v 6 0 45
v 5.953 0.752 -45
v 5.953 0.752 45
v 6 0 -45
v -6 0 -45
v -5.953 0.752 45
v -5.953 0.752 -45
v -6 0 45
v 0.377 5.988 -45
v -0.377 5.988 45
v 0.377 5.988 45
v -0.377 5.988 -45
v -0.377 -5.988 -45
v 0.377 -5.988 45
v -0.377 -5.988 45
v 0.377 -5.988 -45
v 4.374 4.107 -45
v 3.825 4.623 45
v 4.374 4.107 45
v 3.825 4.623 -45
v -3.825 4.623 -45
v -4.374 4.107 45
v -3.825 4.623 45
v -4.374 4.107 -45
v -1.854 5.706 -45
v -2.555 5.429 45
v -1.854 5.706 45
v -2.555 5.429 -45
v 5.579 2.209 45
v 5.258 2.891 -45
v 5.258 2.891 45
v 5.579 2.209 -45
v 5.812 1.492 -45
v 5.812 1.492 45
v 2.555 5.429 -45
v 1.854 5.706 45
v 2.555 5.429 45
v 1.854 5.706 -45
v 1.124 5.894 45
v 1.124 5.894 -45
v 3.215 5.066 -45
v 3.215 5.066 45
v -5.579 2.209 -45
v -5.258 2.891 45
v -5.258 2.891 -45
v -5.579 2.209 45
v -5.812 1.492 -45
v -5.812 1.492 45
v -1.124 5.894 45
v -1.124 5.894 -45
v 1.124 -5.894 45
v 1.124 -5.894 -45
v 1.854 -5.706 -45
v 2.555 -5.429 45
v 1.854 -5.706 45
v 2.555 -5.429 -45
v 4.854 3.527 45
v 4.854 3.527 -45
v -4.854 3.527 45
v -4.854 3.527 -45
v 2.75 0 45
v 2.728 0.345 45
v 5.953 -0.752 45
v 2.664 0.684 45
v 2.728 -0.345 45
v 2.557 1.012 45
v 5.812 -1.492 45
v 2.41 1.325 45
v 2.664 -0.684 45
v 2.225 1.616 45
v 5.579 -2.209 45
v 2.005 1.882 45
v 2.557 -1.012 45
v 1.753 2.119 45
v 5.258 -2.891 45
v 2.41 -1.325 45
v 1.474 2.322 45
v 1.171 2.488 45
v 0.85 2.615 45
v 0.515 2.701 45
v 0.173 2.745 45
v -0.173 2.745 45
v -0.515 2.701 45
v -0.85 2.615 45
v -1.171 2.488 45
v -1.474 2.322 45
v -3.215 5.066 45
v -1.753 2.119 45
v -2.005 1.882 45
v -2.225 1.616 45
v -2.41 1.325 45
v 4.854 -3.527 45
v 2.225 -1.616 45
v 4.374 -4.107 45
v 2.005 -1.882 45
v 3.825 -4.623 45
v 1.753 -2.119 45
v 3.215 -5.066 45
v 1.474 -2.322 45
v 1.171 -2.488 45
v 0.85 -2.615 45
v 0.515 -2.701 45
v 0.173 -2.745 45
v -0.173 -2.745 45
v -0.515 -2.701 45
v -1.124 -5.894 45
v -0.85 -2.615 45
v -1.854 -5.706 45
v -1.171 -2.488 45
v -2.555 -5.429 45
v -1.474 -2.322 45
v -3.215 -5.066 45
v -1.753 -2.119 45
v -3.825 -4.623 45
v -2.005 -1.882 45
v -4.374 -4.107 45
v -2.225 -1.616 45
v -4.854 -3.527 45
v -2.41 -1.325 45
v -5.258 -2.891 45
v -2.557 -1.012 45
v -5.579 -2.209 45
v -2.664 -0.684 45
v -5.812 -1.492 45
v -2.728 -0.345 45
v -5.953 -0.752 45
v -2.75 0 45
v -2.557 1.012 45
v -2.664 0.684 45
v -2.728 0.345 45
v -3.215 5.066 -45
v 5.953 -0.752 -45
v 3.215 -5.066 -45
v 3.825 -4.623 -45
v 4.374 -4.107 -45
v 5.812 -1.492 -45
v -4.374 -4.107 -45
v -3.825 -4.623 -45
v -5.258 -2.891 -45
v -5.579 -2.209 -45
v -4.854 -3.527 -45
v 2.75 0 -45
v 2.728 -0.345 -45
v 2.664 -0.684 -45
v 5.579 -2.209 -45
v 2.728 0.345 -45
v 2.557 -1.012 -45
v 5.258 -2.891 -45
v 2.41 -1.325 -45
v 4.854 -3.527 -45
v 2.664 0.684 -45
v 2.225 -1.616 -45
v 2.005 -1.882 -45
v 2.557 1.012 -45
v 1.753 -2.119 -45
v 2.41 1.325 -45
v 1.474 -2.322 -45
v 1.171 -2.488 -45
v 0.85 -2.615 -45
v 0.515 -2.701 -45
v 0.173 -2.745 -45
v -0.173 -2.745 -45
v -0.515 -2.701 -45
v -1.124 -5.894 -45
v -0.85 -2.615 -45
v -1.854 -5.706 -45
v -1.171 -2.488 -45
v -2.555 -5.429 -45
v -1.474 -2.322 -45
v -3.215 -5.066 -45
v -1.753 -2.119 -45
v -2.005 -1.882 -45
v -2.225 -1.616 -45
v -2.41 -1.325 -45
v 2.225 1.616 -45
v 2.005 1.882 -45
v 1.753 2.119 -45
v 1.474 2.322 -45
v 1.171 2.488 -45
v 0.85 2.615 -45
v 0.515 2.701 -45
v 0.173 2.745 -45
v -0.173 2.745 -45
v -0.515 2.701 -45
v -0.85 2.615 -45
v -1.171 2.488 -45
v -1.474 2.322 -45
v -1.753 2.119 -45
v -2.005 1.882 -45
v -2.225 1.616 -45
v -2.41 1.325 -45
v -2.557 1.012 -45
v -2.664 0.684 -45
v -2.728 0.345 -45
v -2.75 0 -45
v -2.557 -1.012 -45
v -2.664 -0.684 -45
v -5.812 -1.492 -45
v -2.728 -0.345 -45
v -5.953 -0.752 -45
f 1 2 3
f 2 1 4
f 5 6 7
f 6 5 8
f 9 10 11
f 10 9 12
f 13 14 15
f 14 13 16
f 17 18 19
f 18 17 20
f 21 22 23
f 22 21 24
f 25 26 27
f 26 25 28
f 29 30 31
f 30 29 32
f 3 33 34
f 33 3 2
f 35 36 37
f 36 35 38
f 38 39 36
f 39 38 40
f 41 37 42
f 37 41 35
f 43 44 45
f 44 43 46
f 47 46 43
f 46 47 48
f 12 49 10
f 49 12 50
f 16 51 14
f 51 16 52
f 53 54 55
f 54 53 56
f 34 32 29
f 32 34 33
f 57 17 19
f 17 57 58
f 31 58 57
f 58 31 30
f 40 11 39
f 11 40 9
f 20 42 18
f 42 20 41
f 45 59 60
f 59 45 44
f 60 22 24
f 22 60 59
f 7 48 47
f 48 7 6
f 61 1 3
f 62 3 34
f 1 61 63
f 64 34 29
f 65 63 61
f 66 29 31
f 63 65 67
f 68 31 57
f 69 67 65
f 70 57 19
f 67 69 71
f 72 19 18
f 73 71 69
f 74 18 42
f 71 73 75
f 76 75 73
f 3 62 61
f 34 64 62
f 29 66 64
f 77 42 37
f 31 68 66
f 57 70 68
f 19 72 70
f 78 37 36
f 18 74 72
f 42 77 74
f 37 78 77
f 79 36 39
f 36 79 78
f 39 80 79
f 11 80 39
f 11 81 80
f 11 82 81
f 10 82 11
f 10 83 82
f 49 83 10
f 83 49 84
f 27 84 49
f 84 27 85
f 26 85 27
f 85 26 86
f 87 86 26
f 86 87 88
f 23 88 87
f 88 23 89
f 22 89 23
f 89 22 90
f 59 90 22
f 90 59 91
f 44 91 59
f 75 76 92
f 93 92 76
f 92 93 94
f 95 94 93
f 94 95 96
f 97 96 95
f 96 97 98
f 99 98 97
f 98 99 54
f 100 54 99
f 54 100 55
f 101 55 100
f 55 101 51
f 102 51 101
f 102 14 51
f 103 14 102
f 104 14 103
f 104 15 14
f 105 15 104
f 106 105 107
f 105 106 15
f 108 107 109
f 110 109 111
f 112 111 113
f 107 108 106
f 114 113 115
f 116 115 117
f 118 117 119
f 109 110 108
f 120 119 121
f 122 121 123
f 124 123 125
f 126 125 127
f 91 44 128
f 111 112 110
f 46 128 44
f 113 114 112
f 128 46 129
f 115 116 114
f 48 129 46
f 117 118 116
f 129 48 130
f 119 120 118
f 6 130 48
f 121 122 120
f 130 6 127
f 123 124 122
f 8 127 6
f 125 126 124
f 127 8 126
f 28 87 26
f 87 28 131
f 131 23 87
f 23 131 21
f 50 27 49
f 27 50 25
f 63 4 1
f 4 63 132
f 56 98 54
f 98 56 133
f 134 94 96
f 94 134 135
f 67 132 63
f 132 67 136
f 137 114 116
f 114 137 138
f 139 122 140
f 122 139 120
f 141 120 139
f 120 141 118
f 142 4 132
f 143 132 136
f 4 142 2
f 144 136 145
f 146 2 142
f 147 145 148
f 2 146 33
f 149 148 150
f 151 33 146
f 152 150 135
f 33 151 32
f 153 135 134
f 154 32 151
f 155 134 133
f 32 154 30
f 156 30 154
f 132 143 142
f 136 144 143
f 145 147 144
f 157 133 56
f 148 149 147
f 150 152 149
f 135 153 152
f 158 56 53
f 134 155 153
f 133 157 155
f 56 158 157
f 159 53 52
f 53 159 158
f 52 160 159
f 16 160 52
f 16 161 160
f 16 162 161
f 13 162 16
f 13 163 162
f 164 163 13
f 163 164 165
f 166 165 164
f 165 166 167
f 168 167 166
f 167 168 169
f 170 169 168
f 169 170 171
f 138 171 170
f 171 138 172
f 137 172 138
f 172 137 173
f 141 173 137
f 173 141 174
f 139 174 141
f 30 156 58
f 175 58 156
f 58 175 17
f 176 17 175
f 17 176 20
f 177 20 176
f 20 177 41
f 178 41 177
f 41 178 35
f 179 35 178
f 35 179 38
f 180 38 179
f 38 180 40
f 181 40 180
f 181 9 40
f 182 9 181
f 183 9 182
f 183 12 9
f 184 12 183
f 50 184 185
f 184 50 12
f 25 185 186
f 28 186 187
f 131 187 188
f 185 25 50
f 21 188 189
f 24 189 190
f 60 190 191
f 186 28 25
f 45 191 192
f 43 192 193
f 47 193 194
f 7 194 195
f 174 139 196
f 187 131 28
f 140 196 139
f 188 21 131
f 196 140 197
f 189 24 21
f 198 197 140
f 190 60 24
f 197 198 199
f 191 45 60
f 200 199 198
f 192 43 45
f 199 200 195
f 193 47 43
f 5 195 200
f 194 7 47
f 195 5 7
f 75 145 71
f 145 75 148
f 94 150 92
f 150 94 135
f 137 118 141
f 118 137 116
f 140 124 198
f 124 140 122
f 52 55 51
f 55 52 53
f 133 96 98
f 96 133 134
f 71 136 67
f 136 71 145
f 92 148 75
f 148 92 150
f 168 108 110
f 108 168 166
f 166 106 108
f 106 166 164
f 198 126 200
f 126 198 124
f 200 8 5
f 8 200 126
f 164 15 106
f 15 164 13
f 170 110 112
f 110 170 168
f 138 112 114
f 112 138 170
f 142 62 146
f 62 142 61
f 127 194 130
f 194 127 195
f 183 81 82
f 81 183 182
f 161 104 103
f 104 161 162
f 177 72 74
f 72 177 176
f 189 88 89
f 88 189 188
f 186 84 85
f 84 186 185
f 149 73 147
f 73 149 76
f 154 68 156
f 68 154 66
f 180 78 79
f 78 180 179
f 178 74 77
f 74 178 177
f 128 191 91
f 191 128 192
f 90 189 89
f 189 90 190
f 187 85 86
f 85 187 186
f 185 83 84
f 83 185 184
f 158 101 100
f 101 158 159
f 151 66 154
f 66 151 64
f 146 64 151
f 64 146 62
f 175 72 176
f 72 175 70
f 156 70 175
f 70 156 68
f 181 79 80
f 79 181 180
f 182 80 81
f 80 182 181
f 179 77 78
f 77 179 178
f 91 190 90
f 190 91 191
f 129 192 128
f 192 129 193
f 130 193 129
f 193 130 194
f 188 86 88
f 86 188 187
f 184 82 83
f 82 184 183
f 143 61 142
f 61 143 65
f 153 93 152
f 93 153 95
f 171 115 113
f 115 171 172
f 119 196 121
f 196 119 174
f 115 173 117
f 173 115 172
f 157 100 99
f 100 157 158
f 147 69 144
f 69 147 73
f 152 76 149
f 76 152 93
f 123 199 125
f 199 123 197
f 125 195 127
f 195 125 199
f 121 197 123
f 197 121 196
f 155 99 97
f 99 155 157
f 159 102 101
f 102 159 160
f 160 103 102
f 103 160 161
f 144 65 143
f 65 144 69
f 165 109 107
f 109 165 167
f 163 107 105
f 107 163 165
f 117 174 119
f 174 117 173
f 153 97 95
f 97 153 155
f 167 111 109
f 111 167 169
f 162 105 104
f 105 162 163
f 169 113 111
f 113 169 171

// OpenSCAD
$fn = 50;


difference() {
	union() {
		translate(v = [0, 0, -45.0000000000]) {
			cylinder(h = 90, r = 6.0000000000);
		}
	}
	union() {
		translate(v = [0, 0, -100.0000000000]) {
			cylinder(h = 200, r = 2.7500000000);
		}
	}
}
